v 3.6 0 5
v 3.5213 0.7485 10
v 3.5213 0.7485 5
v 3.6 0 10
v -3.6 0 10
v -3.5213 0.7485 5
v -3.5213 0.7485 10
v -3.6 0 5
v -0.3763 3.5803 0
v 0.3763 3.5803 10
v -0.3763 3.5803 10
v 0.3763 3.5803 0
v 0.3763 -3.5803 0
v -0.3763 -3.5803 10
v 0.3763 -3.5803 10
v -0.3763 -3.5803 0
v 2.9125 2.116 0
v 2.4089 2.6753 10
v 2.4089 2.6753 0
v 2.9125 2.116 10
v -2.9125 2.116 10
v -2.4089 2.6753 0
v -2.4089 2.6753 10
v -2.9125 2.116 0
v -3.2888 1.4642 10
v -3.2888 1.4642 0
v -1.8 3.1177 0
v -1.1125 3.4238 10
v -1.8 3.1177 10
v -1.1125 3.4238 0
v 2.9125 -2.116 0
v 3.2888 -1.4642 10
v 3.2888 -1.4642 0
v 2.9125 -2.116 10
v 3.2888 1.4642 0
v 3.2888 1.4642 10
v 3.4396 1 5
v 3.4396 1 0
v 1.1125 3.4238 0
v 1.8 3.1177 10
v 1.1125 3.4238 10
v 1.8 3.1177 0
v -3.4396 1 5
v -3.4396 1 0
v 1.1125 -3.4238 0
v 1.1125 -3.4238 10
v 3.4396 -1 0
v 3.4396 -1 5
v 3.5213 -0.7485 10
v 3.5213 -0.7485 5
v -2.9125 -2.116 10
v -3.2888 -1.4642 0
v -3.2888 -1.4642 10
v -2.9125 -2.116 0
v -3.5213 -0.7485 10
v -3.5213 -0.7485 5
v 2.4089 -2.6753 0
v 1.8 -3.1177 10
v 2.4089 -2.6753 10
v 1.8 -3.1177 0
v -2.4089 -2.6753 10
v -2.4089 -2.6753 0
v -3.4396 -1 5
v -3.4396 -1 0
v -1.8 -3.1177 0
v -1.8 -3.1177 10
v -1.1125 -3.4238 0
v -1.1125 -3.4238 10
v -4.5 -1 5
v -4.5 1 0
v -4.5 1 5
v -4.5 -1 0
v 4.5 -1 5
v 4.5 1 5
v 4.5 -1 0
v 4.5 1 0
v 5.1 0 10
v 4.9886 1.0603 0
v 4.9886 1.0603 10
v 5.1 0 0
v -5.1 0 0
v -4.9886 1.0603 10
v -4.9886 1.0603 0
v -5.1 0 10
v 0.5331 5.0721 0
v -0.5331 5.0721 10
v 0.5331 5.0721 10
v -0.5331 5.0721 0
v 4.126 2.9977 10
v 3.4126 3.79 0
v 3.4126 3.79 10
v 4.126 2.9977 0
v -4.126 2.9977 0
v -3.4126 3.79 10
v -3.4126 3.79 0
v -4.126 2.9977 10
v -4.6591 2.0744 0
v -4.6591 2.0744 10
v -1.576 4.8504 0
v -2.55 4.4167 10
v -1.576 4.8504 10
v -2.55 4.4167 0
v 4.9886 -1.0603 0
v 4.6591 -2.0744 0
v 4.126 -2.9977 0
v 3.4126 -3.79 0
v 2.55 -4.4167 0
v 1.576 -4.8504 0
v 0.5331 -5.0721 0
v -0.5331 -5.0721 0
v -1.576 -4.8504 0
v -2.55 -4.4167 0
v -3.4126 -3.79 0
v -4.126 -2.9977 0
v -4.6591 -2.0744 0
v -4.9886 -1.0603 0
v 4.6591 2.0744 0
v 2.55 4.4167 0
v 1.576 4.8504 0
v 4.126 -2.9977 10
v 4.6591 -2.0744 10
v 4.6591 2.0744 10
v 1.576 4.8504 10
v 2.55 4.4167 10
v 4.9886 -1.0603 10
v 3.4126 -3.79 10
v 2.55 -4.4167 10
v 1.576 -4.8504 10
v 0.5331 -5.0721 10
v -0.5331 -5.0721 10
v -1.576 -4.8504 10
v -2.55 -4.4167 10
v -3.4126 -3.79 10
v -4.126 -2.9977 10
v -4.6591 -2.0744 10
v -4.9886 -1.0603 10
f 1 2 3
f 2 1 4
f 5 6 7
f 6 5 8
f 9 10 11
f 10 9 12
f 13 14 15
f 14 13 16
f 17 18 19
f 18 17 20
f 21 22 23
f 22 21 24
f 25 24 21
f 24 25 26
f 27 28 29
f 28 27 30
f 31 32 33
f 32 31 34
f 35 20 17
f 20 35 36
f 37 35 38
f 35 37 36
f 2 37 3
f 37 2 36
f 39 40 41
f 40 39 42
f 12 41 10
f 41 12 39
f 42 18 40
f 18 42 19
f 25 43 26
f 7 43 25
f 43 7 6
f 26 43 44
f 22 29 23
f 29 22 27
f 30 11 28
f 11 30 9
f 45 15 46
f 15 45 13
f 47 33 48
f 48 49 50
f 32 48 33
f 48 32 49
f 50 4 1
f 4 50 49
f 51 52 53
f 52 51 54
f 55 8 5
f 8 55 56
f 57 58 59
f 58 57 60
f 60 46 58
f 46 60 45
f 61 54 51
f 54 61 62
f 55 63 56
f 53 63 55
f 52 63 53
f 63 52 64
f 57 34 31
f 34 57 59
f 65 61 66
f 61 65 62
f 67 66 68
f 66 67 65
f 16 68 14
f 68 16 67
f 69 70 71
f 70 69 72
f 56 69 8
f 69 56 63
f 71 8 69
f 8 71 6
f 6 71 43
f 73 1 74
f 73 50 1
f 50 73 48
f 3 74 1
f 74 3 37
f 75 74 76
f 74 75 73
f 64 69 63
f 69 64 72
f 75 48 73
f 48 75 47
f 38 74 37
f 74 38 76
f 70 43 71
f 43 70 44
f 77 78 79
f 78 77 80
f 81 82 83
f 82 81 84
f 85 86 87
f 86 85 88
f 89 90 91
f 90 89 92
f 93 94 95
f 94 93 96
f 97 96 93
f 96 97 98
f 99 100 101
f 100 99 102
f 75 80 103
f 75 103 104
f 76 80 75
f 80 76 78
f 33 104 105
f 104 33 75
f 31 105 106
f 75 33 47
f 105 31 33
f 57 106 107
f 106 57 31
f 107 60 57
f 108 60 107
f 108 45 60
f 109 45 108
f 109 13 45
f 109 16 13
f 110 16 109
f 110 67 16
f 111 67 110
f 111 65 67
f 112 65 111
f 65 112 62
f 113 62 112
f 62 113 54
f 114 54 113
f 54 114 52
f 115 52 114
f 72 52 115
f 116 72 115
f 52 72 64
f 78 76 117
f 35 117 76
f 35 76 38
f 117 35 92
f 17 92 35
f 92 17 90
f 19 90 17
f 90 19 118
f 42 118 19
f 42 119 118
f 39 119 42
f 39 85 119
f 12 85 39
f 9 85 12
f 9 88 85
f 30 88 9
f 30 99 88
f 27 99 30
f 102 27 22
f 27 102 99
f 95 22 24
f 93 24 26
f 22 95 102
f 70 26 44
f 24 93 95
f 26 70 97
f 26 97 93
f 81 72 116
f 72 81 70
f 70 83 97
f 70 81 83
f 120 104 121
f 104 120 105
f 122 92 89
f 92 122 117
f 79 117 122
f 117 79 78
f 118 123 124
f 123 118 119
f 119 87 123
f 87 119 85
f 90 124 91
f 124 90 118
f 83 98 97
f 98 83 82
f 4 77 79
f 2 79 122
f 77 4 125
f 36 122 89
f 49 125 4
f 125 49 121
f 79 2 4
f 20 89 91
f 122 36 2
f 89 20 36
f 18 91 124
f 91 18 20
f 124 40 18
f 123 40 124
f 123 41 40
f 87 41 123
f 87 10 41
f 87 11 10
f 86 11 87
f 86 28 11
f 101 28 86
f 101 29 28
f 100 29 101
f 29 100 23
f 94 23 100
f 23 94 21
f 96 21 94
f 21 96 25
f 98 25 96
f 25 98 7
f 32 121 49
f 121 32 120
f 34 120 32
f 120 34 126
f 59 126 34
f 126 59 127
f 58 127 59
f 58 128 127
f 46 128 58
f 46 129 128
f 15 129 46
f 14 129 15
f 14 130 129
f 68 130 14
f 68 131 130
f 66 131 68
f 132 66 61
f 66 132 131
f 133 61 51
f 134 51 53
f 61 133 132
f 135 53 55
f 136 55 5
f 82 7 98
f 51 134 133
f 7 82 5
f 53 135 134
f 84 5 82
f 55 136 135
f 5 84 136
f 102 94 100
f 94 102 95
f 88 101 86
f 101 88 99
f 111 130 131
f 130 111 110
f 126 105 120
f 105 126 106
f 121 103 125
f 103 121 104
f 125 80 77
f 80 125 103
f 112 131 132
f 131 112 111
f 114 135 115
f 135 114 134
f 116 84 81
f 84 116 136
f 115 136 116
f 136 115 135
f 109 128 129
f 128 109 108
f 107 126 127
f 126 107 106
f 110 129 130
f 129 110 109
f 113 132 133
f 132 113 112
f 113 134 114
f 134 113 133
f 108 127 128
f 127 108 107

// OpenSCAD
laserCylinderCutoutRadius = 3.6;
laserTubeLength = 10;

laserMount();

module laserMount()
{
	difference()
	{
		laserTube();
		
		laserCutout();
	}
}

/**
 * This is the space for the laser that is cut out of laserTube().
 */
module laserCutout()
{
	union()
	{
		height = laserTubeLength + 0.02;
		translate([0,0,-0.01])
		cylinder(h=height, r=laserCylinderCutoutRadius, $fn=30);
	
		cubeHeight = height / 2.0;
		translateZ = cubeHeight / 2.0 - 0.01;
		cubeX = 9;
		color("green")
		translate([0,0,translateZ])
		cube([cubeX, 2, cubeHeight], center=true);
	}
}

/**
 * This is the tube that holds the laser module.
 */
module laserTube()
{
	height = laserTubeLength;
	radius = laserCylinderCutoutRadius + 1.5;
	cylinder(h=height, r=radius, $fn=30);
}
